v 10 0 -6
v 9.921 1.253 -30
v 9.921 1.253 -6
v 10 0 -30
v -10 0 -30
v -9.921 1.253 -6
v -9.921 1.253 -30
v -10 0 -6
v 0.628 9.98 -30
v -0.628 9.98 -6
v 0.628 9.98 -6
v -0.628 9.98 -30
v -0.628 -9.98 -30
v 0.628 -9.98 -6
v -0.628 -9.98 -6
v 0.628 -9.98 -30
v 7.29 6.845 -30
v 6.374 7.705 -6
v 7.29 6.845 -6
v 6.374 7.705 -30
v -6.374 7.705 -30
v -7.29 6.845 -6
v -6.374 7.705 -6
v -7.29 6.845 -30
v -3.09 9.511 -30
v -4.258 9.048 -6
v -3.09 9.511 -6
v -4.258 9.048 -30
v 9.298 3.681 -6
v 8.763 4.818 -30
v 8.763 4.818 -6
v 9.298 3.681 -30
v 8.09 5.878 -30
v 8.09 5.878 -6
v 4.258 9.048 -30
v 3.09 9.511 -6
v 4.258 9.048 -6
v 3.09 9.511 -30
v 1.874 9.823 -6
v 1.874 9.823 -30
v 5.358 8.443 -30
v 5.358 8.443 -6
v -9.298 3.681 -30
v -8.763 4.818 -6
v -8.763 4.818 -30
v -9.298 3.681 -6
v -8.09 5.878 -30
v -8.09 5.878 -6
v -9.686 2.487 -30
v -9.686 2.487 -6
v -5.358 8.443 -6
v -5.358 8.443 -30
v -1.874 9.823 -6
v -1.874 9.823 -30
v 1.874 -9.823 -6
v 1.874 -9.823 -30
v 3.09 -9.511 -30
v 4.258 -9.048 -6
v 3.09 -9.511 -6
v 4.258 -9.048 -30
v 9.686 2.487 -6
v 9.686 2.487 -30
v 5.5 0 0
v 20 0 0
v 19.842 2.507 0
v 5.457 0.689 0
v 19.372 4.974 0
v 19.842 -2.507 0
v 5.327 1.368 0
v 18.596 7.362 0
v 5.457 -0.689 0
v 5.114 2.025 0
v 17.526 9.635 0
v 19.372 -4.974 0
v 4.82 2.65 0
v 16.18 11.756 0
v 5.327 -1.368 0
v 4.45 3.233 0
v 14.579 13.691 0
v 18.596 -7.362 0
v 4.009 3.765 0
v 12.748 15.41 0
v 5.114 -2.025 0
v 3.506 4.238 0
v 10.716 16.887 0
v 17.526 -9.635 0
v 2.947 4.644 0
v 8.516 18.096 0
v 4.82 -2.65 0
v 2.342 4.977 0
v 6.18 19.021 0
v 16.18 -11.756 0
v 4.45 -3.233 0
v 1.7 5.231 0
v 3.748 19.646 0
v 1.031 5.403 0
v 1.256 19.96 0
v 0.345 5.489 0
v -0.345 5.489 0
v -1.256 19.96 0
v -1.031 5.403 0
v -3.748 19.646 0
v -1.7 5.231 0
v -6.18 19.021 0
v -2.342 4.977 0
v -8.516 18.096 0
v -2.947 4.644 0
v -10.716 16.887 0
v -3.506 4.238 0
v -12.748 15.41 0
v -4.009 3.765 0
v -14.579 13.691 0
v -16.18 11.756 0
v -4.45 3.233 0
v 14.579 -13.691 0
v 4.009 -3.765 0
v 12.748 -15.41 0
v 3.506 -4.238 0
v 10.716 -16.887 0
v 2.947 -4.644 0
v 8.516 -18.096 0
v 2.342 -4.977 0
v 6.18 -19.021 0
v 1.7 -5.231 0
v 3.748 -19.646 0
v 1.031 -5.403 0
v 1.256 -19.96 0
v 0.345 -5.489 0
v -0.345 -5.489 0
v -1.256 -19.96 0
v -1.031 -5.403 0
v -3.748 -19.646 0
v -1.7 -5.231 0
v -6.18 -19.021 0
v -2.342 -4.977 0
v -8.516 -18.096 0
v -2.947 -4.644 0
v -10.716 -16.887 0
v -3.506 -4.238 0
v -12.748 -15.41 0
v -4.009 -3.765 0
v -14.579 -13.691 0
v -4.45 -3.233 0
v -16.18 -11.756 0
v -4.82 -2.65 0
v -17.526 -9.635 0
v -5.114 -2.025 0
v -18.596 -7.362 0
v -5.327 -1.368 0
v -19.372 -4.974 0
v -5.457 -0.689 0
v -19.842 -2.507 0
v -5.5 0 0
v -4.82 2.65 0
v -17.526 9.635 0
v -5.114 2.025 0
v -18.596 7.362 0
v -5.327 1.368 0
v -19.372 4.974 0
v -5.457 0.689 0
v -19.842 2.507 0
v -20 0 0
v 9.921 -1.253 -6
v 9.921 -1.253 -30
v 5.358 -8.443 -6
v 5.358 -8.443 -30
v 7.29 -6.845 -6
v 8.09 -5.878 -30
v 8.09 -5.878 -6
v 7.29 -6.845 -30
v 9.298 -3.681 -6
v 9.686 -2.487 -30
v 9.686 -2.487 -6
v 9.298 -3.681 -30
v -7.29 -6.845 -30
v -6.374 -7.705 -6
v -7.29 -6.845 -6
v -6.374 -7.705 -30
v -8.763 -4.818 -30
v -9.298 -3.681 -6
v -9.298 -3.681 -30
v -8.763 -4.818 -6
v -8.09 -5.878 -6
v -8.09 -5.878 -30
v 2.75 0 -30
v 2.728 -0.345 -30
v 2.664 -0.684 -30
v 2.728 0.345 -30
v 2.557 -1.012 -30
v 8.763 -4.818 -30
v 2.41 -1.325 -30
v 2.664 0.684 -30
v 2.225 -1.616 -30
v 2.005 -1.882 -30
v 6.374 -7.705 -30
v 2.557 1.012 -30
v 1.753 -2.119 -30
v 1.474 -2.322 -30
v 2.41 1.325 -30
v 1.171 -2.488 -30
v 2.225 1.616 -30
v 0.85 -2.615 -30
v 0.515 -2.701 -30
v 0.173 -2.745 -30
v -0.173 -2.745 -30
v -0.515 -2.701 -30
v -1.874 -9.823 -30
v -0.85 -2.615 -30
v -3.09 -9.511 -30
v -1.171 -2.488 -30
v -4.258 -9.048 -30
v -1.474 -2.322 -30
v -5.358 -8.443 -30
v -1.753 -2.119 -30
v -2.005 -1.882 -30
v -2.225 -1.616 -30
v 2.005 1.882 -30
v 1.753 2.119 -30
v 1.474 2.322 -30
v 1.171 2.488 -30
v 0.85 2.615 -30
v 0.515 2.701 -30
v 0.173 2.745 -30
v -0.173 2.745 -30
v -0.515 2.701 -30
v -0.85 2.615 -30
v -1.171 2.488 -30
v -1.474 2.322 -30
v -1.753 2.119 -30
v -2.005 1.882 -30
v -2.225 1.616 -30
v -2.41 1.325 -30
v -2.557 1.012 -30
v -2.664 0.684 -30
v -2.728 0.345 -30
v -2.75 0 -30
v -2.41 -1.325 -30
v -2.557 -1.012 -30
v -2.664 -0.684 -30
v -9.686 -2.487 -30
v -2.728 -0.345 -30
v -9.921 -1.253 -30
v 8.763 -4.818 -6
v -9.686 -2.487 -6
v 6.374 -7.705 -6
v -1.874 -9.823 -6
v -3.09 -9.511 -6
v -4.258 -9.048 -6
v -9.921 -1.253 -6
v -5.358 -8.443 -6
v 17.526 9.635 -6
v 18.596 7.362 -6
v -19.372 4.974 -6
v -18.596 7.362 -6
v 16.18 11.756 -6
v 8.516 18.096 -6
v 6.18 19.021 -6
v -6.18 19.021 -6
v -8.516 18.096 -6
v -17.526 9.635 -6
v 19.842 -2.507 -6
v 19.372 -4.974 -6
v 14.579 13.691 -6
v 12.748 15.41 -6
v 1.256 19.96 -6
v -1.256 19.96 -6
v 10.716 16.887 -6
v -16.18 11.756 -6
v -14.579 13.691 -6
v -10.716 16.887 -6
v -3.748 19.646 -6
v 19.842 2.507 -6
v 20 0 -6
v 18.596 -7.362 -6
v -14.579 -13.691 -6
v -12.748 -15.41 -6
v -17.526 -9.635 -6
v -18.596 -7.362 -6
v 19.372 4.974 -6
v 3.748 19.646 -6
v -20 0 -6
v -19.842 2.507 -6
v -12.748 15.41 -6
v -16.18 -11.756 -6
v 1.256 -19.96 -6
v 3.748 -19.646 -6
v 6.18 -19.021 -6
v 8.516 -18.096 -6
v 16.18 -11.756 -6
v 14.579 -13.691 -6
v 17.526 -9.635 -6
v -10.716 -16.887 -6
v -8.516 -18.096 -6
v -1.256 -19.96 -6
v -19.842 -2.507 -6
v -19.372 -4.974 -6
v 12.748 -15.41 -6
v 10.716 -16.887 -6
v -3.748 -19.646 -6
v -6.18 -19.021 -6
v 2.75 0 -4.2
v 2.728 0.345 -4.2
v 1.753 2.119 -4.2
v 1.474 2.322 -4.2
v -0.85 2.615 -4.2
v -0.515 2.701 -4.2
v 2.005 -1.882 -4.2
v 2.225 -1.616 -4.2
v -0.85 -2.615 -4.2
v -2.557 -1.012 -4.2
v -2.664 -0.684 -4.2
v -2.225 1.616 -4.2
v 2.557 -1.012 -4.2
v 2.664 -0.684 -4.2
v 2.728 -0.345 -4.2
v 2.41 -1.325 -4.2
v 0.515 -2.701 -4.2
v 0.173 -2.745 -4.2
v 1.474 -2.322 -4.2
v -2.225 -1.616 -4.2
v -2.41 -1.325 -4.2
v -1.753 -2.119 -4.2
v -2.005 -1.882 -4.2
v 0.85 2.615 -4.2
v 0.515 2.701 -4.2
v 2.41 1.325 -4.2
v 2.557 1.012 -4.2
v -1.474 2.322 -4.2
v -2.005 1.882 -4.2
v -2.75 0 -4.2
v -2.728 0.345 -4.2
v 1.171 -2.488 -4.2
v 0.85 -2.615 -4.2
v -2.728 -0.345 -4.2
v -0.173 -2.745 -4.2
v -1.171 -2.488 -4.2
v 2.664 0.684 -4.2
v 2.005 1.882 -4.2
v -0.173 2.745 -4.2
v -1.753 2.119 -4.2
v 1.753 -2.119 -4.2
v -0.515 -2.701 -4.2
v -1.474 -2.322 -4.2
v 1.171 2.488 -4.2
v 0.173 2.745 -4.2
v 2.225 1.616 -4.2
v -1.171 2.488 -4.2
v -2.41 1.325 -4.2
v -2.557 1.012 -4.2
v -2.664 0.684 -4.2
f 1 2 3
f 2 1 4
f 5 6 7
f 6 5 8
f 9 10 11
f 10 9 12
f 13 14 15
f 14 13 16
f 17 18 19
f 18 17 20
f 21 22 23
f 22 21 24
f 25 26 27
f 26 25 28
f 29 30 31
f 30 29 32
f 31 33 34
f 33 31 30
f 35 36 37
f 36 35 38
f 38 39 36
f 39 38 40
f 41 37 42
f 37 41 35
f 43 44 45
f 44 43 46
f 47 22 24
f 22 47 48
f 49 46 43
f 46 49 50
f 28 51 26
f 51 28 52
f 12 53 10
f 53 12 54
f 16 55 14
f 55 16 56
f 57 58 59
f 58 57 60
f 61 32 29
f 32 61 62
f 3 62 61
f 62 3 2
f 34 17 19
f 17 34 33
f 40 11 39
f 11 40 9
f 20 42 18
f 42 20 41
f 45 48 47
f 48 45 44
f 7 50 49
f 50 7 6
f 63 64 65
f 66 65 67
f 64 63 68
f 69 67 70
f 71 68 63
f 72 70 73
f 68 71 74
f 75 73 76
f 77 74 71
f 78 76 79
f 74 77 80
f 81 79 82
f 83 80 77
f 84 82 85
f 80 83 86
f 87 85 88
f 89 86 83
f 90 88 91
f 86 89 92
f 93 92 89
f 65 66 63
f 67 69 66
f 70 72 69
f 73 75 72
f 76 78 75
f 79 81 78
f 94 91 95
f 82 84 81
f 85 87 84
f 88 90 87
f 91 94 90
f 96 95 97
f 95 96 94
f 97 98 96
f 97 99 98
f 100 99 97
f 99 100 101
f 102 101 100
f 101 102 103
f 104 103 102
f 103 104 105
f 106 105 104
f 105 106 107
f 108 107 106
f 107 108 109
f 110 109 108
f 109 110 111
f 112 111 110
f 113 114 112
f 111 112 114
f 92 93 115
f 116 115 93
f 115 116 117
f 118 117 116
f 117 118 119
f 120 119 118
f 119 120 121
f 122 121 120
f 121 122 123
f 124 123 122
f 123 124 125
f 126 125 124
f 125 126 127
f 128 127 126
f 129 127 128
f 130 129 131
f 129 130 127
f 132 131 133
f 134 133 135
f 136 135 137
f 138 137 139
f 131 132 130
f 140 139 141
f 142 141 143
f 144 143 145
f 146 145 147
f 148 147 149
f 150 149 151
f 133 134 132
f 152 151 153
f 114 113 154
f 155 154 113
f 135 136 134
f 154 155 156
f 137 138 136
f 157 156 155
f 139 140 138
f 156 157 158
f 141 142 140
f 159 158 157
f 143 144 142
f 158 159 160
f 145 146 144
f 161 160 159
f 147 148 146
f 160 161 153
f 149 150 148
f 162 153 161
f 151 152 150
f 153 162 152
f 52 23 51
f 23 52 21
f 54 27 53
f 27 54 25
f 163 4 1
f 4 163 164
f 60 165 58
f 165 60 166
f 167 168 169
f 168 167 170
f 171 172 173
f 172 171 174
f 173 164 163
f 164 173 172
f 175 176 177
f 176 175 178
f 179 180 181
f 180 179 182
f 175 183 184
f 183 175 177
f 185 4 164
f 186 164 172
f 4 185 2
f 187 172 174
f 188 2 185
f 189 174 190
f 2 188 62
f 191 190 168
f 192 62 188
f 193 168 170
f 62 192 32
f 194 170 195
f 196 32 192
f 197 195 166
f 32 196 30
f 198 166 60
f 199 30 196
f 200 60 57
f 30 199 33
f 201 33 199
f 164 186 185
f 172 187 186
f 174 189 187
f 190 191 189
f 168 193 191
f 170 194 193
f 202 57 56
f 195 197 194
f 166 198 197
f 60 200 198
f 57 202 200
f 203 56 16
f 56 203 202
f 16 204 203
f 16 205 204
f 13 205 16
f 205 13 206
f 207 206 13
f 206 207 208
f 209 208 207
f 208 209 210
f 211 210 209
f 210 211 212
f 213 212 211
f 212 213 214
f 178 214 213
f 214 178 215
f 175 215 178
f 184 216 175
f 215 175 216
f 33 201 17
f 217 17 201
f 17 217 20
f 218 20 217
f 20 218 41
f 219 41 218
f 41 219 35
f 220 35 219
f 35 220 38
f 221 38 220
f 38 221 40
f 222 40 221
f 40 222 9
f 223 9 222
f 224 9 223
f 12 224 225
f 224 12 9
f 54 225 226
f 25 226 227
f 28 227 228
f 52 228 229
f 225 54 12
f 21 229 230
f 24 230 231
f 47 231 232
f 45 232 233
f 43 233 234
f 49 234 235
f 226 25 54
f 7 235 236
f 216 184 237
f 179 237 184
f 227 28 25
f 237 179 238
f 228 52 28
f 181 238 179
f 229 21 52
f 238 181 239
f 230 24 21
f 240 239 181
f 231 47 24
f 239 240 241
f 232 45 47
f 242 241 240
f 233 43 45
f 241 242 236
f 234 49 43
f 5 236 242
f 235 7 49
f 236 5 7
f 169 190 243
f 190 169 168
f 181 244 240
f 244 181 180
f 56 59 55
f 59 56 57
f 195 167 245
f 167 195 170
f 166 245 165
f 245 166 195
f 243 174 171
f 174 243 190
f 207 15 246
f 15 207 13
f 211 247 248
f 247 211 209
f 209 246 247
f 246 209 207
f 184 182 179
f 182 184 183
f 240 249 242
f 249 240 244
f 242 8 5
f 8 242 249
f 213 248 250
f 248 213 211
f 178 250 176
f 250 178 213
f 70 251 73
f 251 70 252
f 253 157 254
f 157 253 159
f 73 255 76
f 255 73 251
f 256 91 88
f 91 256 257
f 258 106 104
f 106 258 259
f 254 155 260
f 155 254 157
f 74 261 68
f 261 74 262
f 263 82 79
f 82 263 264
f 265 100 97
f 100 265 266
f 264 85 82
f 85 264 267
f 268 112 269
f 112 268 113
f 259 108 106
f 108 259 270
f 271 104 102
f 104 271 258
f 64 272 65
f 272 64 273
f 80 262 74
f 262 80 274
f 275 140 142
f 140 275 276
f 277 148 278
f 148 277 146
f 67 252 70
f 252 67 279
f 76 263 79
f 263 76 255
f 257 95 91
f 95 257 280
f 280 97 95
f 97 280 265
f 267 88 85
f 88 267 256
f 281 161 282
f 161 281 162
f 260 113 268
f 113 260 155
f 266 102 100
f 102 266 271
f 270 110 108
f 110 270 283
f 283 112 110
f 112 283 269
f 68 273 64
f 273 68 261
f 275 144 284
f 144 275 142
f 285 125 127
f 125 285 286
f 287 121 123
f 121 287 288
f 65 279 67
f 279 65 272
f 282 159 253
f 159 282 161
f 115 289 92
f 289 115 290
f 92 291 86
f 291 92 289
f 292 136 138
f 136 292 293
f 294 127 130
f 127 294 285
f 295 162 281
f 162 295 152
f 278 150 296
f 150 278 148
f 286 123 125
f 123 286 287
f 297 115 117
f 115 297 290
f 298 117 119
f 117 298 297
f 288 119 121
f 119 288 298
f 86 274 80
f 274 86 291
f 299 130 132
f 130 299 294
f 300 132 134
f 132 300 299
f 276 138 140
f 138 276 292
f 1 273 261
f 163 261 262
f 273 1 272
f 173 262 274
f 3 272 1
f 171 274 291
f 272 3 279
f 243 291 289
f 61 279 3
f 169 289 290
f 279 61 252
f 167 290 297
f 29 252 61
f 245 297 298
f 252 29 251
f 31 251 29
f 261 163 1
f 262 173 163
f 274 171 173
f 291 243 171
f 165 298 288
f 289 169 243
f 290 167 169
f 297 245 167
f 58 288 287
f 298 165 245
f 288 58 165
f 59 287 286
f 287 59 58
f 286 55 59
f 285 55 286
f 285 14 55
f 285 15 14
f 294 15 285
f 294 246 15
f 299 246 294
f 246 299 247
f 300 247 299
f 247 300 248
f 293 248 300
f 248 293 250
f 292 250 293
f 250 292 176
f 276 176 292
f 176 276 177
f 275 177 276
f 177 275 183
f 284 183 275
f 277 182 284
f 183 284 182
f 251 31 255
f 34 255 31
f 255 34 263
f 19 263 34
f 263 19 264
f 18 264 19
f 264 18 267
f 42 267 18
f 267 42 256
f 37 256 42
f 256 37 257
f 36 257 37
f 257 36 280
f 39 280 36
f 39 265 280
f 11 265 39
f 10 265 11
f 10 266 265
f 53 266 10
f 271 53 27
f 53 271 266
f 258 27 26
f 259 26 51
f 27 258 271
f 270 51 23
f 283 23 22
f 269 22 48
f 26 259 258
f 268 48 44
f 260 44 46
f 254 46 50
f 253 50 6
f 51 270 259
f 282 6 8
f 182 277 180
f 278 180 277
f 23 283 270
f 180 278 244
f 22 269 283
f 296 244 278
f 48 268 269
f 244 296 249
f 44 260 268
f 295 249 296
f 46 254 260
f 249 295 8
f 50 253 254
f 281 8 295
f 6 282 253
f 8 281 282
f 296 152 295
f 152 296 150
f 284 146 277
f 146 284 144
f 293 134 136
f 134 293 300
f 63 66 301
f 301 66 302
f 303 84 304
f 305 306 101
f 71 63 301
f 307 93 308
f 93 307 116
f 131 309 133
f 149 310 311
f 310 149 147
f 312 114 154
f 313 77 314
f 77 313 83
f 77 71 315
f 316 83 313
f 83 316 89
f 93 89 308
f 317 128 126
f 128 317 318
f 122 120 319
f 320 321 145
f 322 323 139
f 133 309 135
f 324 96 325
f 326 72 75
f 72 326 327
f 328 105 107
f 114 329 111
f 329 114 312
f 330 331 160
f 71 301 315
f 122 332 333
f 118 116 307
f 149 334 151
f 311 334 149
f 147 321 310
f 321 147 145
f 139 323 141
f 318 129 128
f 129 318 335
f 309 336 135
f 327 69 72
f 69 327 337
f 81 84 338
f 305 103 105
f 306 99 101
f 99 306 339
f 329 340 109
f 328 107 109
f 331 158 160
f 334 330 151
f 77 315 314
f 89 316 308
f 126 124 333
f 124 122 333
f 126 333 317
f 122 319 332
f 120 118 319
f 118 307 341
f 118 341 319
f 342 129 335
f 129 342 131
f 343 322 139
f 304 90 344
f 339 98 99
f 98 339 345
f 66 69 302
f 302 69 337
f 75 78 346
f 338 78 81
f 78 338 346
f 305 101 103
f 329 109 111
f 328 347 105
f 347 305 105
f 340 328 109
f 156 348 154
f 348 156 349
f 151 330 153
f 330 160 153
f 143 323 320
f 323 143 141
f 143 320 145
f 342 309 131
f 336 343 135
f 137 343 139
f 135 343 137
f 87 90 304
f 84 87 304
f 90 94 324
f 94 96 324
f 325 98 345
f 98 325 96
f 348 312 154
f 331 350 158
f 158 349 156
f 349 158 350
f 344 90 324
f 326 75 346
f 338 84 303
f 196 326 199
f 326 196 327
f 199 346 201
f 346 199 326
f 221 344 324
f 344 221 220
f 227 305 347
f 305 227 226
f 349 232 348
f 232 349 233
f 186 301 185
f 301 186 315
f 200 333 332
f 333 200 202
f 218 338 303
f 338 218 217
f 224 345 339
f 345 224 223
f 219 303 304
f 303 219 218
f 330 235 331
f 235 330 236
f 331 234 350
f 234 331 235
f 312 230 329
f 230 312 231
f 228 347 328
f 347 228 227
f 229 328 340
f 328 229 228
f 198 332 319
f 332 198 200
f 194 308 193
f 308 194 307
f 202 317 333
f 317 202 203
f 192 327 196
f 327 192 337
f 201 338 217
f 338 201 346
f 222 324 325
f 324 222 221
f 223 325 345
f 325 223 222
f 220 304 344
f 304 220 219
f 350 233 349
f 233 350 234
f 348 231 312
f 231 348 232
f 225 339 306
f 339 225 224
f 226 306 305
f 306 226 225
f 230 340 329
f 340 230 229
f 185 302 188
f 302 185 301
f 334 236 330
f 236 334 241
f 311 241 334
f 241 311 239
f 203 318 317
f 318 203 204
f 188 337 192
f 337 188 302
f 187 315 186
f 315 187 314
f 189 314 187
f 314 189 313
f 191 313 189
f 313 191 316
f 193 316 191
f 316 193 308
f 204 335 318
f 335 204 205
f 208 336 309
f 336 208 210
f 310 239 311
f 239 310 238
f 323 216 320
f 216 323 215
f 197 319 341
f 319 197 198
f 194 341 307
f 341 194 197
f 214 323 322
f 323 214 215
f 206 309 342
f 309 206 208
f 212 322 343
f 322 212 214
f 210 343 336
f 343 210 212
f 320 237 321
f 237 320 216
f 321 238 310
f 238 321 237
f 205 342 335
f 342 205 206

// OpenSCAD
$fn = 50;


difference() {
	union() {
		translate(v = [0, 0, -30.0000000000]) {
			cylinder(h = 30, r = 10.0000000000);
		}
		translate(v = [0, 0, -6.0000000000]) {
			cylinder(h = 6, r = 20.0000000000);
		}
	}
	union() {
		translate(v = [0, 0, 0]) {
			rotate(a = [0, 0, 0]) {
				difference() {
					union() {
						#translate(v = [0, 0, -30.0000000000]) {
							cylinder(h = 30, r = 2.2500000000);
						}
						#translate(v = [0, 0, -4.2000000000]) {
							cylinder(h = 4.2000000000, r = 10.0000000000, r1 = 2.7500000000, r2 = 5.5000000000);
						}
						#translate(v = [0, 0, -30.0000000000]) {
							cylinder(h = 30, r = 2.7500000000);
						}
						#translate(v = [0, 0, -30.0000000000]) {
							cylinder(h = 30, r = 2.2500000000);
						}
					}
					union();
				}
			}
		}
	}
}
